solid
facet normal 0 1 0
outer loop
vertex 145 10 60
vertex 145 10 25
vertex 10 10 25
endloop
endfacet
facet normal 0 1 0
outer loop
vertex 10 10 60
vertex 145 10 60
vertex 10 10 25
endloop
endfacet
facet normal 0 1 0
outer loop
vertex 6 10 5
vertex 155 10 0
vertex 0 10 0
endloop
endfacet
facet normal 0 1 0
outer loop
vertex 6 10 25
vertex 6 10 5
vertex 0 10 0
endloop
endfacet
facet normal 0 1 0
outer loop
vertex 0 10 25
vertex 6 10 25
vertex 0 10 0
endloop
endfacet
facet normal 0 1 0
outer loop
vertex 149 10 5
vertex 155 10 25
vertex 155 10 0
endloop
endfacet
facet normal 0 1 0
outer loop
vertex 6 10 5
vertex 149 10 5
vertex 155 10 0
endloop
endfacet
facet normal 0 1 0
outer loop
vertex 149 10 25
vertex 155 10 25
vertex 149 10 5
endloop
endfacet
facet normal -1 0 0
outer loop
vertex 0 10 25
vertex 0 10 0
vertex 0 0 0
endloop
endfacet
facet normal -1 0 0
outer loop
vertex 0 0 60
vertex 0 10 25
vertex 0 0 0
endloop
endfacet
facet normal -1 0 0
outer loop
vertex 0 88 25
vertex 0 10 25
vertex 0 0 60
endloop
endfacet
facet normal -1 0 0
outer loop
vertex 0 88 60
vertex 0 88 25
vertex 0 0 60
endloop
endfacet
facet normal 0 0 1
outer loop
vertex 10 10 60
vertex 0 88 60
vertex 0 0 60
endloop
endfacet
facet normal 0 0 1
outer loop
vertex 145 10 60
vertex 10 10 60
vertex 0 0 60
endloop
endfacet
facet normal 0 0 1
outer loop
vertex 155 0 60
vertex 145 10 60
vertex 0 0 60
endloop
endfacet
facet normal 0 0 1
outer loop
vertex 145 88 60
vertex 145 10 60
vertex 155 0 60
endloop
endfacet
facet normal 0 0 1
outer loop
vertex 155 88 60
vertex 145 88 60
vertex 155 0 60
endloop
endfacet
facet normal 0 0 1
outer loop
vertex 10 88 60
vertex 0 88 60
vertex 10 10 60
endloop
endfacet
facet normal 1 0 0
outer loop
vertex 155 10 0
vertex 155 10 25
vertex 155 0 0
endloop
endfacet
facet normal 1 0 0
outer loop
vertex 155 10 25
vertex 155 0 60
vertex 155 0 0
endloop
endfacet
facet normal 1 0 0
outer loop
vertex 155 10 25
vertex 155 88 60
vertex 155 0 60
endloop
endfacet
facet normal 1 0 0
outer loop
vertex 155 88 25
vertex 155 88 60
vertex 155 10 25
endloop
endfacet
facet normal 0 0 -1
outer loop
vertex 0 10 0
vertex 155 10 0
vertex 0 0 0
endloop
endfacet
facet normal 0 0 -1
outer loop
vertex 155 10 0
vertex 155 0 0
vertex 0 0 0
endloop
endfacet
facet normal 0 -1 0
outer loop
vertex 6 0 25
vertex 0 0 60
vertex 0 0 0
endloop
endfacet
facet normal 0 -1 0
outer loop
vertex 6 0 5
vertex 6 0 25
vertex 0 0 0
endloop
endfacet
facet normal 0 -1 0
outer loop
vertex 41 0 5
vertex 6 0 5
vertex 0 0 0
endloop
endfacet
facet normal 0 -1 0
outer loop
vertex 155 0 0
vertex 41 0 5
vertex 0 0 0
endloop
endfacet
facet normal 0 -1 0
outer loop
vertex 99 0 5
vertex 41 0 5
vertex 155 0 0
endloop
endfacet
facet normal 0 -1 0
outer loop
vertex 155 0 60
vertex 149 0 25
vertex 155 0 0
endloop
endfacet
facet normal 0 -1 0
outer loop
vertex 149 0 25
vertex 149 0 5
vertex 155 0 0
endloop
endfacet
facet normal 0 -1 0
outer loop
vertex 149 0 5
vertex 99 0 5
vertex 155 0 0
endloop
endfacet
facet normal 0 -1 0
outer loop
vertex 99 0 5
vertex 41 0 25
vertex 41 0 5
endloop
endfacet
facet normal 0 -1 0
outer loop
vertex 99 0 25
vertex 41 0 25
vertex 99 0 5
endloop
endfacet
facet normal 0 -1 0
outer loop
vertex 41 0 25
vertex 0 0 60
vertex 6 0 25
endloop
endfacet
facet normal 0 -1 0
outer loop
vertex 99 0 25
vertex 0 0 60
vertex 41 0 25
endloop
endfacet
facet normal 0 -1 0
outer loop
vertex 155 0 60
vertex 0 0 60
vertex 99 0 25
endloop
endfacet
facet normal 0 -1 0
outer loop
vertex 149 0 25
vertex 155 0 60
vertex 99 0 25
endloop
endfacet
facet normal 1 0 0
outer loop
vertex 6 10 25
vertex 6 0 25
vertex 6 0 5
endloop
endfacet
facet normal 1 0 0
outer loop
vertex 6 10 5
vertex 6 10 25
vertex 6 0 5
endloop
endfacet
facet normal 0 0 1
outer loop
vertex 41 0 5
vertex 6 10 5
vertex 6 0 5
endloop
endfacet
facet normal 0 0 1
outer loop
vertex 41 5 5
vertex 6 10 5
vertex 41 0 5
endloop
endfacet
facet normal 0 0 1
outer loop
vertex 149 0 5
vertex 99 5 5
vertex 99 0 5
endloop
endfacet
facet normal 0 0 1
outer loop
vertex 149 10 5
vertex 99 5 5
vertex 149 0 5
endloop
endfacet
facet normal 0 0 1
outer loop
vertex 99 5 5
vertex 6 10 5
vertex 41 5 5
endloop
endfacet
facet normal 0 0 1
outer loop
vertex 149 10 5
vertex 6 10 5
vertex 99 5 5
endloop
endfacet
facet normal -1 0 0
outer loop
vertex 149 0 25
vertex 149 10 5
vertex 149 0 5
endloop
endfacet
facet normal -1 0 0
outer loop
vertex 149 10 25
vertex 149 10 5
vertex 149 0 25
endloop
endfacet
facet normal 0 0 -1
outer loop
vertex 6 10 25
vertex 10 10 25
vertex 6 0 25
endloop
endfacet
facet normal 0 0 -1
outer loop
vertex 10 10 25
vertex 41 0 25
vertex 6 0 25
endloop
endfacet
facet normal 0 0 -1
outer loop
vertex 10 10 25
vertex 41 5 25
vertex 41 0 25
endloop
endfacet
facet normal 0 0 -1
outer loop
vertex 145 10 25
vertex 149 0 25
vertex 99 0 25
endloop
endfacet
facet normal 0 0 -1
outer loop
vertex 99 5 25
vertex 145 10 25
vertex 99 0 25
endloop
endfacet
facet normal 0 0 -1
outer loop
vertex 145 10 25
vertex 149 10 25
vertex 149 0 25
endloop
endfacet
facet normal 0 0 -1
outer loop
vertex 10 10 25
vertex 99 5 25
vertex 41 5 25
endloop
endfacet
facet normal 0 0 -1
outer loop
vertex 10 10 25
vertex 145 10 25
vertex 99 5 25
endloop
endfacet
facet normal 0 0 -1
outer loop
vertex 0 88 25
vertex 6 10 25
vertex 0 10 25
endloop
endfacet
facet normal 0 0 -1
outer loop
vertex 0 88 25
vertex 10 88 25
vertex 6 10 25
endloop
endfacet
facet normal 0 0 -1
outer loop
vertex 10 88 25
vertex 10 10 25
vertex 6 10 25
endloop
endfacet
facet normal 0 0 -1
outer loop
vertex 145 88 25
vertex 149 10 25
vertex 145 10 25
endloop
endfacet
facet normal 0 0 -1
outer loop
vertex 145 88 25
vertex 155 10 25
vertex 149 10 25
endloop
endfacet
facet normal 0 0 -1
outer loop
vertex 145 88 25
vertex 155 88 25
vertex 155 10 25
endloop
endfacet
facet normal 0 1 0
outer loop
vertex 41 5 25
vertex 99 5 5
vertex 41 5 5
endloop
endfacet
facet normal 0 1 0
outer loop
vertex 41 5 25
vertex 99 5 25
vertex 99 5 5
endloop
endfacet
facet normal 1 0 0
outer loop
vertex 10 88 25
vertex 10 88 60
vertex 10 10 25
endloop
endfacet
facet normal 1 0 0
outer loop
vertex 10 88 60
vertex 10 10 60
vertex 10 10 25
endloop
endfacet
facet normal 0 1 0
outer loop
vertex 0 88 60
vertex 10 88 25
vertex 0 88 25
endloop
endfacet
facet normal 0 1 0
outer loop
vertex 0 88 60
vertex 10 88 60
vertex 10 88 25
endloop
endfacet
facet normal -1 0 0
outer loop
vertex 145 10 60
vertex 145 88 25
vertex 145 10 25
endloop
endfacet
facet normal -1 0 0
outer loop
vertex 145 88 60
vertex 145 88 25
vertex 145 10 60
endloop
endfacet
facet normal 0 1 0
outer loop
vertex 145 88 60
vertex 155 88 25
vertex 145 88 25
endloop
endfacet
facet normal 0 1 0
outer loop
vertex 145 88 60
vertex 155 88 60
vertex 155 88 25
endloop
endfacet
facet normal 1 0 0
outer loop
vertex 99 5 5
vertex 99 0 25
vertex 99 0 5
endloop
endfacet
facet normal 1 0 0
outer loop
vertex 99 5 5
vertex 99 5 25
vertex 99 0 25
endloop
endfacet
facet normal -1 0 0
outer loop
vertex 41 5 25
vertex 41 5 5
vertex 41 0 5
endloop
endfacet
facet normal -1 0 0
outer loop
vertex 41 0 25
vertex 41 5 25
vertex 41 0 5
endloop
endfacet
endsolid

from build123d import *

# Parameters (mm, degrees)
SKETCH1_W           = 155
SKETCH1_H           = 60
BOSS_EXTRUDE1_DEPTH = 10
SKETCH2_W           = 143
SKETCH2_H           = 20
CUT_EXTRUDE1_DEPTH  = 5
SKETCH3_W           = 10
SKETCH3_H           = 35
BOSS_EXTRUDE2_DEPTH = 78
SKETCH4_W           = 35
SKETCH4_H           = 20
SKETCH4_W_2         = 50
CUT_EXTRUDE2_DEPTH  = 78


with BuildPart() as part:
    # Sketch1 → Boss-Extrude1 (new body)
    with BuildSketch(Plane(origin=(0, 0, 0), x_dir=(1, 0, 0), z_dir=(0, 1, 0))):
        with Locations((77.5, -30)):
            Rectangle(SKETCH1_W, SKETCH1_H)
    extrude(amount=BOSS_EXTRUDE1_DEPTH)

    # Sketch2 → Cut-Extrude1 (cut)
    with BuildSketch(Plane(origin=(0, 10, 0), x_dir=(1, 0, 0), z_dir=(0, 1, 0))):
        with Locations((77.5, -15)):
            Rectangle(SKETCH2_W, SKETCH2_H)
    extrude(amount=-CUT_EXTRUDE1_DEPTH, mode=Mode.SUBTRACT)

    # Sketch3 → Boss-Extrude2 (add)
    with BuildSketch(Plane(origin=(0, 10, 0), x_dir=(1, 0, 0), z_dir=(0, 1, 0))):
        with Locations((5, -42.5)):
            Rectangle(SKETCH3_W, SKETCH3_H)
        with Locations((150, -42.5)):
            Rectangle(SKETCH3_W, SKETCH3_H)
    extrude(amount=BOSS_EXTRUDE2_DEPTH)

    # Sketch4 → Cut-Extrude2 (cut)
    with BuildSketch(Plane(origin=(0, 5, 0), x_dir=(1, 0, 0), z_dir=(0, 1, 0))):
        with Locations((23.5, -15)):
            Rectangle(SKETCH4_W, SKETCH4_H)
        with Locations((124, -15)):
            Rectangle(SKETCH4_W_2, SKETCH4_H)
    extrude(amount=-CUT_EXTRUDE2_DEPTH, mode=Mode.SUBTRACT)


solid = part.part
